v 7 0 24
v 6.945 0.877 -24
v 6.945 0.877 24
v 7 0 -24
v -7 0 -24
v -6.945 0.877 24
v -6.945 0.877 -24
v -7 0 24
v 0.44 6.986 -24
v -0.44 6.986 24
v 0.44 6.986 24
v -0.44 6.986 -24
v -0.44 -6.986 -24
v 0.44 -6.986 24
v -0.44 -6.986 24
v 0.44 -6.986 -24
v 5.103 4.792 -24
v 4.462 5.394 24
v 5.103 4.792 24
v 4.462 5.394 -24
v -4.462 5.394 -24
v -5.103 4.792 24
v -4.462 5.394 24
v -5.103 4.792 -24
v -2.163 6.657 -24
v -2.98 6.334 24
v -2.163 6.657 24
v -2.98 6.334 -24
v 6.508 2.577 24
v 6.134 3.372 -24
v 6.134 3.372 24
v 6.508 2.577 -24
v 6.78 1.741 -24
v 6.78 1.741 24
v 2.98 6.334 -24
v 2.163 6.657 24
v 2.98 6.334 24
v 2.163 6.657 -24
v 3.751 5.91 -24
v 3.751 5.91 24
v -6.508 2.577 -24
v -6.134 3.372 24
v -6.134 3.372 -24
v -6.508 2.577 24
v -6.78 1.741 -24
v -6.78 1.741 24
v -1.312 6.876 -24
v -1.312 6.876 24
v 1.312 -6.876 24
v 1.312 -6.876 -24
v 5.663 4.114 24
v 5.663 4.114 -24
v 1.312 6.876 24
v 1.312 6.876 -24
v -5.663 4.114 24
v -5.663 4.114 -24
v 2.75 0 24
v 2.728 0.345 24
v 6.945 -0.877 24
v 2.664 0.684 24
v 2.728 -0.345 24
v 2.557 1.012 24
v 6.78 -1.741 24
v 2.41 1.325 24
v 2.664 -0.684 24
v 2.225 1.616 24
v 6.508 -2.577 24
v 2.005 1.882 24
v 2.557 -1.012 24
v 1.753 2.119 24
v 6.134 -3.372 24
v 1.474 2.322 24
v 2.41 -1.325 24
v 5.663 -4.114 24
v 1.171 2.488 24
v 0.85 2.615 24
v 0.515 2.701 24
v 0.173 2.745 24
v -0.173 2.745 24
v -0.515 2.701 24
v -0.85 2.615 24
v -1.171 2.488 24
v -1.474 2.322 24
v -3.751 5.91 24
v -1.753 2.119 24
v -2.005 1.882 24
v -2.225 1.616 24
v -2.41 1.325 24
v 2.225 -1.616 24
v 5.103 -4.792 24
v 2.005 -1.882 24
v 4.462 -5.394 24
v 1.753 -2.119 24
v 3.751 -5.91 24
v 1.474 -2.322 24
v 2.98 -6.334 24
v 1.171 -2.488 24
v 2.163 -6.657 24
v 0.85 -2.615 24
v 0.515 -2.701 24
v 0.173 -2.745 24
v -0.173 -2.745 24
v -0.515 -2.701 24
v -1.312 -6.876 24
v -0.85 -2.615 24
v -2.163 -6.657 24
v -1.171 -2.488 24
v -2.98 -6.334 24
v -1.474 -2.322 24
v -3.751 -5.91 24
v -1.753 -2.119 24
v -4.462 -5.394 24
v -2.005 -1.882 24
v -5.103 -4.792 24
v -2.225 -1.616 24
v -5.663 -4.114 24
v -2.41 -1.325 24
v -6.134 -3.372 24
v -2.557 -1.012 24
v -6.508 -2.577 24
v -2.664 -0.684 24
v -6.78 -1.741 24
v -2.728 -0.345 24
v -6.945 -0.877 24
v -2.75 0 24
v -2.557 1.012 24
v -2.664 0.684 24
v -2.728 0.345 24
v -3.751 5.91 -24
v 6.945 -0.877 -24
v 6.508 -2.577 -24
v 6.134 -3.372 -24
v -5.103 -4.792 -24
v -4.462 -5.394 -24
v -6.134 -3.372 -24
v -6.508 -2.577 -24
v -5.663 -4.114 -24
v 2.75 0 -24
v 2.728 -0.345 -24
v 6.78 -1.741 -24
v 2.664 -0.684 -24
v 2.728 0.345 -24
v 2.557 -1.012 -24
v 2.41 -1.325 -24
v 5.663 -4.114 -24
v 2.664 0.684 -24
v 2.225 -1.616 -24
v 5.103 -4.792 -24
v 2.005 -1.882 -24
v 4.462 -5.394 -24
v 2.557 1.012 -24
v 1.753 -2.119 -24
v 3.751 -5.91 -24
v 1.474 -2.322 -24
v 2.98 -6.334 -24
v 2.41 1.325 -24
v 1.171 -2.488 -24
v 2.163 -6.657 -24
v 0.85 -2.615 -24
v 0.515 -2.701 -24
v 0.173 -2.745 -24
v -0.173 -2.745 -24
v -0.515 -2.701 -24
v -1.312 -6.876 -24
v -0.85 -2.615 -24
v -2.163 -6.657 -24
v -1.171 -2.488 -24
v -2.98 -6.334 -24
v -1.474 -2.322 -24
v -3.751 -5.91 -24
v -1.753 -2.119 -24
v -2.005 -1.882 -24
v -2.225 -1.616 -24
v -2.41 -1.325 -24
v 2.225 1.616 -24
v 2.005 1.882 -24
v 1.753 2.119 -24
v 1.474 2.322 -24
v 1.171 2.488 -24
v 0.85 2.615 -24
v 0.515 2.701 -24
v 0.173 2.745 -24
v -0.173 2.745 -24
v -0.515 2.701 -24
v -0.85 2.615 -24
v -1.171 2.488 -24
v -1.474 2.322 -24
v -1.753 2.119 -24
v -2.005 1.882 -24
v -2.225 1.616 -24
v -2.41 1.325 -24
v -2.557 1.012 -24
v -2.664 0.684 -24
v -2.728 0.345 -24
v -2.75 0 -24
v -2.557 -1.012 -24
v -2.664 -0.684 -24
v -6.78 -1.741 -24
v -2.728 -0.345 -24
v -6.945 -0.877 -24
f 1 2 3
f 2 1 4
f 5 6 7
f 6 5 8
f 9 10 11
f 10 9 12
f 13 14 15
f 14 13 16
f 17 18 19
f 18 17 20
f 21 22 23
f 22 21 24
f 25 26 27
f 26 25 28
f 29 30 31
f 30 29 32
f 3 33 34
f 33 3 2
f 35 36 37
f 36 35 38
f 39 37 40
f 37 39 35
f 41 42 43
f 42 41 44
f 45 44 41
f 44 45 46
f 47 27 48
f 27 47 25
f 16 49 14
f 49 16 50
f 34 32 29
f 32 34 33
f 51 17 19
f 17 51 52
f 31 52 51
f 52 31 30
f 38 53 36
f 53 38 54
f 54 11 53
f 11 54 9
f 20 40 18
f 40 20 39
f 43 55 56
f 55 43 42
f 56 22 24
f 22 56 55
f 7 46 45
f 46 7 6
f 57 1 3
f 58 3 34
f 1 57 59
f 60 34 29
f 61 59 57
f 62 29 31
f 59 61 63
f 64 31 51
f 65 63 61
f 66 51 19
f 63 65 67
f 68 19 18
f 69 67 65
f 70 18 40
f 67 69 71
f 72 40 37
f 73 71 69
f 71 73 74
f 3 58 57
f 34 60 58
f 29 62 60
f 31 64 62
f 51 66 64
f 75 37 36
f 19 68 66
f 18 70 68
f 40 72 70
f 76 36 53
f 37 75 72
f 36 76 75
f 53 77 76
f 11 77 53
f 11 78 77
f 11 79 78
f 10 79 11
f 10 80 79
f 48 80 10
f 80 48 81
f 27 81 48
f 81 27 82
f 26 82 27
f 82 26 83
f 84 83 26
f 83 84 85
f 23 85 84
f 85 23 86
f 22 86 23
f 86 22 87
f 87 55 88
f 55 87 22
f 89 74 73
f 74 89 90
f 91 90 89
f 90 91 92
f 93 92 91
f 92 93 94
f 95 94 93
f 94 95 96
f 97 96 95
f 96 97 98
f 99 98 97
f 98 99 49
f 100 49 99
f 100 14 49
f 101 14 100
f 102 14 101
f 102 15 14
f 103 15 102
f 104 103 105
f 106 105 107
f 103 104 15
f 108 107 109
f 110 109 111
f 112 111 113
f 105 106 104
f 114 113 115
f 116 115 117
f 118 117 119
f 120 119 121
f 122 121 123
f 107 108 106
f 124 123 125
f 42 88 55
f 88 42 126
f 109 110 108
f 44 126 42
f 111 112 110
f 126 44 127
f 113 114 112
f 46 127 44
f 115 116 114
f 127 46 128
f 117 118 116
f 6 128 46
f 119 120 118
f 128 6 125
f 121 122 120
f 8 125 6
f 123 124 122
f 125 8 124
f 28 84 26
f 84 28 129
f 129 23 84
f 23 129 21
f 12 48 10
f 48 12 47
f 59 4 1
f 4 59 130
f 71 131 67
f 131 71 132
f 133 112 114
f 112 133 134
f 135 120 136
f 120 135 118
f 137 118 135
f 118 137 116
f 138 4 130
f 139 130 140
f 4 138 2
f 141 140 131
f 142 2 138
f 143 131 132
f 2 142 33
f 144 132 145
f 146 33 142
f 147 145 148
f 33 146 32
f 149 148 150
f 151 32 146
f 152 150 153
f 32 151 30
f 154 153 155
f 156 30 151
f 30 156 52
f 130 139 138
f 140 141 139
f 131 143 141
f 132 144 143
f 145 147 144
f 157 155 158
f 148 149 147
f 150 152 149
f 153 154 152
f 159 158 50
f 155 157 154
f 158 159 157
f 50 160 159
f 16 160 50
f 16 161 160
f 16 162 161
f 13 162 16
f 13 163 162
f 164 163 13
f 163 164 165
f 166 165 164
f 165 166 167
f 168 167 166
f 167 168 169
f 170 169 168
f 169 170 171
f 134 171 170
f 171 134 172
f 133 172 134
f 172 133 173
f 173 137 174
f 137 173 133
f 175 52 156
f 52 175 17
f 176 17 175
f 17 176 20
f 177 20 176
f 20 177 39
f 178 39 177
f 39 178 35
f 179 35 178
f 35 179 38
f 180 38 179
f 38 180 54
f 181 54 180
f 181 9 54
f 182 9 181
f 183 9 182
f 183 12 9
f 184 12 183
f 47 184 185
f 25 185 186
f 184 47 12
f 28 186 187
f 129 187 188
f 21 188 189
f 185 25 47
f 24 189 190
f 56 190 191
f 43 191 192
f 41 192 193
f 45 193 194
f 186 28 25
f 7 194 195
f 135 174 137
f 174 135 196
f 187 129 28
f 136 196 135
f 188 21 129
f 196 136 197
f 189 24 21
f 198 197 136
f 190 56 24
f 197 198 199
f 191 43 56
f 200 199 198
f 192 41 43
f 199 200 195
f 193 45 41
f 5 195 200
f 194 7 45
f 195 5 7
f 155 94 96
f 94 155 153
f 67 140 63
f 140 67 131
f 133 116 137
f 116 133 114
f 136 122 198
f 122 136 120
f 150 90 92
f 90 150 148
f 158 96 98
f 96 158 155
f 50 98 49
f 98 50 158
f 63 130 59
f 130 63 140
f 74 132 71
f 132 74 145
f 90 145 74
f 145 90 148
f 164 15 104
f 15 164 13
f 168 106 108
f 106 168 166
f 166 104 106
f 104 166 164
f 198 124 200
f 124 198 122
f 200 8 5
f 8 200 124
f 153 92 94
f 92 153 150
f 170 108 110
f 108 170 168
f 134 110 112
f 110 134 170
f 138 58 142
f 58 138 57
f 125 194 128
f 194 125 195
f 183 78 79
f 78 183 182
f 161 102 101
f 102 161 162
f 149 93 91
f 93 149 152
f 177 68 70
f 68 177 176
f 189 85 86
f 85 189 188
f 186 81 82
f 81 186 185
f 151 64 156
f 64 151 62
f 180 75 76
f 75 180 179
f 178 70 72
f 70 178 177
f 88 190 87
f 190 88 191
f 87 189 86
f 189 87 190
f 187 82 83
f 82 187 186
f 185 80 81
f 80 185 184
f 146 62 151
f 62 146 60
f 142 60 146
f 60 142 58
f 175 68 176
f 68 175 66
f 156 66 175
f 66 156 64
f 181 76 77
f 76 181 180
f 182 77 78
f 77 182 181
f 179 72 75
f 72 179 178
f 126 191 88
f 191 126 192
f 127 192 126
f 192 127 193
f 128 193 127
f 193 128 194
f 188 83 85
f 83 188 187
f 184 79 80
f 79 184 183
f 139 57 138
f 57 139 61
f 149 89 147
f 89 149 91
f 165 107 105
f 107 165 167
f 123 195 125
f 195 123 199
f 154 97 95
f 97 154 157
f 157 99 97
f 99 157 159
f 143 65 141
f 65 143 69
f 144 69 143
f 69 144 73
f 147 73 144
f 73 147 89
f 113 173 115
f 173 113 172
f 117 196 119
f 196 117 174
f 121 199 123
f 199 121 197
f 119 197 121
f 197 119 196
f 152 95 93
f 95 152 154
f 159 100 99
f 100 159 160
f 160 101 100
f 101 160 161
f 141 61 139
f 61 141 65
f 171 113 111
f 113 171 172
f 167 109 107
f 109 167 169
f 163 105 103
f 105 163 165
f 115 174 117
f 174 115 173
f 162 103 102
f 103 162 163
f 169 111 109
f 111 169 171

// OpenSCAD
$fn = 50;


difference() {
	union() {
		translate(v = [0, 0, -24.0000000000]) {
			cylinder(h = 48, r = 7.0000000000);
		}
	}
	union() {
		translate(v = [0, 0, -100.0000000000]) {
			cylinder(h = 200, r = 2.7500000000);
		}
	}
}
